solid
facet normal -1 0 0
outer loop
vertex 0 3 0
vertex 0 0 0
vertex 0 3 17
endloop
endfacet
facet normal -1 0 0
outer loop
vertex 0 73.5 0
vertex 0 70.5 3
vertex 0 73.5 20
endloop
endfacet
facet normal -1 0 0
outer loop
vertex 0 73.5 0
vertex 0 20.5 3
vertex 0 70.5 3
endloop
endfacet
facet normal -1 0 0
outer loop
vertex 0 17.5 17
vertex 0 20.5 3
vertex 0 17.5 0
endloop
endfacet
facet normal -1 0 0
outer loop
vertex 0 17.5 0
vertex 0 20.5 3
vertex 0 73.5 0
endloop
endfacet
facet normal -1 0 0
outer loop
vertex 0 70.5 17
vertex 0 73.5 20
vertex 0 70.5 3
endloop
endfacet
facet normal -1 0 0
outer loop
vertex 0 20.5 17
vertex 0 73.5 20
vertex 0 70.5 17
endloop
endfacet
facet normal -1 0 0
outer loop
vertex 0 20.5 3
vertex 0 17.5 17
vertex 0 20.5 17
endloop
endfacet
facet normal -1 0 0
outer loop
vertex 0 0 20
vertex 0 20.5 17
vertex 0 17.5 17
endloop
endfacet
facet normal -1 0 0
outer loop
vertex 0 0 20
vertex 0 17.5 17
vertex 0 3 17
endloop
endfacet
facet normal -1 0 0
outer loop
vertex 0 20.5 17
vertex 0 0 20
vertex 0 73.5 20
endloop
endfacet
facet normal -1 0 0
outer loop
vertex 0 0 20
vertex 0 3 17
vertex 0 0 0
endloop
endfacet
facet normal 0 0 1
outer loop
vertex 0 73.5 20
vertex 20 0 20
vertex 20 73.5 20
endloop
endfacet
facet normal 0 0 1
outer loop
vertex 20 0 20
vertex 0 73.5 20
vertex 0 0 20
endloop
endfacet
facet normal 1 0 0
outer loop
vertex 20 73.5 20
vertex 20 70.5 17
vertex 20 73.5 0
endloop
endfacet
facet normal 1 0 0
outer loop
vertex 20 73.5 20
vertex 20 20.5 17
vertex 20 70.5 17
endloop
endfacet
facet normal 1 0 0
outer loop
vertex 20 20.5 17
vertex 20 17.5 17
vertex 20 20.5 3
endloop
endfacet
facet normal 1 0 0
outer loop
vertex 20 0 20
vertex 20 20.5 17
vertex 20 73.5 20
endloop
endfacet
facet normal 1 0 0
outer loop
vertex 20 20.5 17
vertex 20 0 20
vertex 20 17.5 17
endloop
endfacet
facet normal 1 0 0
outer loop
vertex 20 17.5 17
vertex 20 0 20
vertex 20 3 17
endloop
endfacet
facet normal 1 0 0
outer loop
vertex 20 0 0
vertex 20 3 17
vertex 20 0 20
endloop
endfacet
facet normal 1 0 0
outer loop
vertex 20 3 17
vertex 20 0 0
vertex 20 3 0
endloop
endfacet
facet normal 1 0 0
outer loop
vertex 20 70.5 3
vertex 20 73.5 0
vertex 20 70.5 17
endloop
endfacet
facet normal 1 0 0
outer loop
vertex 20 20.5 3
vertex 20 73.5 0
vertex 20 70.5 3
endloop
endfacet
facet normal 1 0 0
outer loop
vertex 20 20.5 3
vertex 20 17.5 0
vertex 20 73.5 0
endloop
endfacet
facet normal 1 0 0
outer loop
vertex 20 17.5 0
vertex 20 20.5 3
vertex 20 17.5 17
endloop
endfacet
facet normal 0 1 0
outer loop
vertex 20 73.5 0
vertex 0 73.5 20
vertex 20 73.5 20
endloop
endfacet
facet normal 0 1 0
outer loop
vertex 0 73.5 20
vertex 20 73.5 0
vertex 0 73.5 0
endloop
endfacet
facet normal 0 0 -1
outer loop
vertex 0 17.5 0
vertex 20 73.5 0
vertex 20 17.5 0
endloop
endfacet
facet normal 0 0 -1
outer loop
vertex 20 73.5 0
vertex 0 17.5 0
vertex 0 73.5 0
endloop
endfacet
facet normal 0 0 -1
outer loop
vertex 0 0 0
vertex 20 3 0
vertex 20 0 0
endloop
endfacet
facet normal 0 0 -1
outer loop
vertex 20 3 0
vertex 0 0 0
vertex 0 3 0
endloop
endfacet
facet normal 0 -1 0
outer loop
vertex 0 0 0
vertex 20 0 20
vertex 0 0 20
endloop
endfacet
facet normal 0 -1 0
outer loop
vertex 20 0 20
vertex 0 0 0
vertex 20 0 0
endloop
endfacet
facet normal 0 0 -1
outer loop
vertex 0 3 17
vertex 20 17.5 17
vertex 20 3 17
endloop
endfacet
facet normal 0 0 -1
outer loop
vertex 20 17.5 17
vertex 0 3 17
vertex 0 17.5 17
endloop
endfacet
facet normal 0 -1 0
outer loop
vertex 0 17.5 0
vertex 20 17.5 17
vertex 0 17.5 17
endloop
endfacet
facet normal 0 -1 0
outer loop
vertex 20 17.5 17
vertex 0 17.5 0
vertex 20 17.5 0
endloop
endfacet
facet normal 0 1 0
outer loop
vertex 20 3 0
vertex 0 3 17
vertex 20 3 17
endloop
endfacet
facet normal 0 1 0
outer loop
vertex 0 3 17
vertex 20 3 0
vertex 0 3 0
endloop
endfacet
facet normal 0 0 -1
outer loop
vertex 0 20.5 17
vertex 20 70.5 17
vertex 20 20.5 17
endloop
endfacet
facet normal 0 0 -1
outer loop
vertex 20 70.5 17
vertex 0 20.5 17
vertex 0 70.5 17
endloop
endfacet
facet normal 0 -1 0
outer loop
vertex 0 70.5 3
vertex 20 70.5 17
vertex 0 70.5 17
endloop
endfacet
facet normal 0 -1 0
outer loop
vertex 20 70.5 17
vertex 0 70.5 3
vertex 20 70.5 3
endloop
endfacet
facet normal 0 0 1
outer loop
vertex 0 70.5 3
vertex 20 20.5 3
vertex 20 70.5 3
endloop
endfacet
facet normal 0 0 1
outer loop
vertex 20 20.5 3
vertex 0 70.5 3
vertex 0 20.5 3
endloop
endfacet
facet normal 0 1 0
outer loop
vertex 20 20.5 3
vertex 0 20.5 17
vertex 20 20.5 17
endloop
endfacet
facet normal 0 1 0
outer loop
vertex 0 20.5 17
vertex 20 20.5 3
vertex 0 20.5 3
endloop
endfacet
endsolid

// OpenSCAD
width = 20;
height = 20;
walls = 3;
gap = 14.5;
distance = 56;

difference() {
    // Main block
    cube([width, walls + gap + distance, height]);
    
    // Holder
    translate([-1, walls, -1]) {
        cube([width + 2, gap, height - walls + 1]);
    }
    
    // Lighter
    translate([-1, walls + gap + walls, walls]) {
        cube([width + 2, distance - 2 * walls, height - 2 * walls]);
    }
  
}
